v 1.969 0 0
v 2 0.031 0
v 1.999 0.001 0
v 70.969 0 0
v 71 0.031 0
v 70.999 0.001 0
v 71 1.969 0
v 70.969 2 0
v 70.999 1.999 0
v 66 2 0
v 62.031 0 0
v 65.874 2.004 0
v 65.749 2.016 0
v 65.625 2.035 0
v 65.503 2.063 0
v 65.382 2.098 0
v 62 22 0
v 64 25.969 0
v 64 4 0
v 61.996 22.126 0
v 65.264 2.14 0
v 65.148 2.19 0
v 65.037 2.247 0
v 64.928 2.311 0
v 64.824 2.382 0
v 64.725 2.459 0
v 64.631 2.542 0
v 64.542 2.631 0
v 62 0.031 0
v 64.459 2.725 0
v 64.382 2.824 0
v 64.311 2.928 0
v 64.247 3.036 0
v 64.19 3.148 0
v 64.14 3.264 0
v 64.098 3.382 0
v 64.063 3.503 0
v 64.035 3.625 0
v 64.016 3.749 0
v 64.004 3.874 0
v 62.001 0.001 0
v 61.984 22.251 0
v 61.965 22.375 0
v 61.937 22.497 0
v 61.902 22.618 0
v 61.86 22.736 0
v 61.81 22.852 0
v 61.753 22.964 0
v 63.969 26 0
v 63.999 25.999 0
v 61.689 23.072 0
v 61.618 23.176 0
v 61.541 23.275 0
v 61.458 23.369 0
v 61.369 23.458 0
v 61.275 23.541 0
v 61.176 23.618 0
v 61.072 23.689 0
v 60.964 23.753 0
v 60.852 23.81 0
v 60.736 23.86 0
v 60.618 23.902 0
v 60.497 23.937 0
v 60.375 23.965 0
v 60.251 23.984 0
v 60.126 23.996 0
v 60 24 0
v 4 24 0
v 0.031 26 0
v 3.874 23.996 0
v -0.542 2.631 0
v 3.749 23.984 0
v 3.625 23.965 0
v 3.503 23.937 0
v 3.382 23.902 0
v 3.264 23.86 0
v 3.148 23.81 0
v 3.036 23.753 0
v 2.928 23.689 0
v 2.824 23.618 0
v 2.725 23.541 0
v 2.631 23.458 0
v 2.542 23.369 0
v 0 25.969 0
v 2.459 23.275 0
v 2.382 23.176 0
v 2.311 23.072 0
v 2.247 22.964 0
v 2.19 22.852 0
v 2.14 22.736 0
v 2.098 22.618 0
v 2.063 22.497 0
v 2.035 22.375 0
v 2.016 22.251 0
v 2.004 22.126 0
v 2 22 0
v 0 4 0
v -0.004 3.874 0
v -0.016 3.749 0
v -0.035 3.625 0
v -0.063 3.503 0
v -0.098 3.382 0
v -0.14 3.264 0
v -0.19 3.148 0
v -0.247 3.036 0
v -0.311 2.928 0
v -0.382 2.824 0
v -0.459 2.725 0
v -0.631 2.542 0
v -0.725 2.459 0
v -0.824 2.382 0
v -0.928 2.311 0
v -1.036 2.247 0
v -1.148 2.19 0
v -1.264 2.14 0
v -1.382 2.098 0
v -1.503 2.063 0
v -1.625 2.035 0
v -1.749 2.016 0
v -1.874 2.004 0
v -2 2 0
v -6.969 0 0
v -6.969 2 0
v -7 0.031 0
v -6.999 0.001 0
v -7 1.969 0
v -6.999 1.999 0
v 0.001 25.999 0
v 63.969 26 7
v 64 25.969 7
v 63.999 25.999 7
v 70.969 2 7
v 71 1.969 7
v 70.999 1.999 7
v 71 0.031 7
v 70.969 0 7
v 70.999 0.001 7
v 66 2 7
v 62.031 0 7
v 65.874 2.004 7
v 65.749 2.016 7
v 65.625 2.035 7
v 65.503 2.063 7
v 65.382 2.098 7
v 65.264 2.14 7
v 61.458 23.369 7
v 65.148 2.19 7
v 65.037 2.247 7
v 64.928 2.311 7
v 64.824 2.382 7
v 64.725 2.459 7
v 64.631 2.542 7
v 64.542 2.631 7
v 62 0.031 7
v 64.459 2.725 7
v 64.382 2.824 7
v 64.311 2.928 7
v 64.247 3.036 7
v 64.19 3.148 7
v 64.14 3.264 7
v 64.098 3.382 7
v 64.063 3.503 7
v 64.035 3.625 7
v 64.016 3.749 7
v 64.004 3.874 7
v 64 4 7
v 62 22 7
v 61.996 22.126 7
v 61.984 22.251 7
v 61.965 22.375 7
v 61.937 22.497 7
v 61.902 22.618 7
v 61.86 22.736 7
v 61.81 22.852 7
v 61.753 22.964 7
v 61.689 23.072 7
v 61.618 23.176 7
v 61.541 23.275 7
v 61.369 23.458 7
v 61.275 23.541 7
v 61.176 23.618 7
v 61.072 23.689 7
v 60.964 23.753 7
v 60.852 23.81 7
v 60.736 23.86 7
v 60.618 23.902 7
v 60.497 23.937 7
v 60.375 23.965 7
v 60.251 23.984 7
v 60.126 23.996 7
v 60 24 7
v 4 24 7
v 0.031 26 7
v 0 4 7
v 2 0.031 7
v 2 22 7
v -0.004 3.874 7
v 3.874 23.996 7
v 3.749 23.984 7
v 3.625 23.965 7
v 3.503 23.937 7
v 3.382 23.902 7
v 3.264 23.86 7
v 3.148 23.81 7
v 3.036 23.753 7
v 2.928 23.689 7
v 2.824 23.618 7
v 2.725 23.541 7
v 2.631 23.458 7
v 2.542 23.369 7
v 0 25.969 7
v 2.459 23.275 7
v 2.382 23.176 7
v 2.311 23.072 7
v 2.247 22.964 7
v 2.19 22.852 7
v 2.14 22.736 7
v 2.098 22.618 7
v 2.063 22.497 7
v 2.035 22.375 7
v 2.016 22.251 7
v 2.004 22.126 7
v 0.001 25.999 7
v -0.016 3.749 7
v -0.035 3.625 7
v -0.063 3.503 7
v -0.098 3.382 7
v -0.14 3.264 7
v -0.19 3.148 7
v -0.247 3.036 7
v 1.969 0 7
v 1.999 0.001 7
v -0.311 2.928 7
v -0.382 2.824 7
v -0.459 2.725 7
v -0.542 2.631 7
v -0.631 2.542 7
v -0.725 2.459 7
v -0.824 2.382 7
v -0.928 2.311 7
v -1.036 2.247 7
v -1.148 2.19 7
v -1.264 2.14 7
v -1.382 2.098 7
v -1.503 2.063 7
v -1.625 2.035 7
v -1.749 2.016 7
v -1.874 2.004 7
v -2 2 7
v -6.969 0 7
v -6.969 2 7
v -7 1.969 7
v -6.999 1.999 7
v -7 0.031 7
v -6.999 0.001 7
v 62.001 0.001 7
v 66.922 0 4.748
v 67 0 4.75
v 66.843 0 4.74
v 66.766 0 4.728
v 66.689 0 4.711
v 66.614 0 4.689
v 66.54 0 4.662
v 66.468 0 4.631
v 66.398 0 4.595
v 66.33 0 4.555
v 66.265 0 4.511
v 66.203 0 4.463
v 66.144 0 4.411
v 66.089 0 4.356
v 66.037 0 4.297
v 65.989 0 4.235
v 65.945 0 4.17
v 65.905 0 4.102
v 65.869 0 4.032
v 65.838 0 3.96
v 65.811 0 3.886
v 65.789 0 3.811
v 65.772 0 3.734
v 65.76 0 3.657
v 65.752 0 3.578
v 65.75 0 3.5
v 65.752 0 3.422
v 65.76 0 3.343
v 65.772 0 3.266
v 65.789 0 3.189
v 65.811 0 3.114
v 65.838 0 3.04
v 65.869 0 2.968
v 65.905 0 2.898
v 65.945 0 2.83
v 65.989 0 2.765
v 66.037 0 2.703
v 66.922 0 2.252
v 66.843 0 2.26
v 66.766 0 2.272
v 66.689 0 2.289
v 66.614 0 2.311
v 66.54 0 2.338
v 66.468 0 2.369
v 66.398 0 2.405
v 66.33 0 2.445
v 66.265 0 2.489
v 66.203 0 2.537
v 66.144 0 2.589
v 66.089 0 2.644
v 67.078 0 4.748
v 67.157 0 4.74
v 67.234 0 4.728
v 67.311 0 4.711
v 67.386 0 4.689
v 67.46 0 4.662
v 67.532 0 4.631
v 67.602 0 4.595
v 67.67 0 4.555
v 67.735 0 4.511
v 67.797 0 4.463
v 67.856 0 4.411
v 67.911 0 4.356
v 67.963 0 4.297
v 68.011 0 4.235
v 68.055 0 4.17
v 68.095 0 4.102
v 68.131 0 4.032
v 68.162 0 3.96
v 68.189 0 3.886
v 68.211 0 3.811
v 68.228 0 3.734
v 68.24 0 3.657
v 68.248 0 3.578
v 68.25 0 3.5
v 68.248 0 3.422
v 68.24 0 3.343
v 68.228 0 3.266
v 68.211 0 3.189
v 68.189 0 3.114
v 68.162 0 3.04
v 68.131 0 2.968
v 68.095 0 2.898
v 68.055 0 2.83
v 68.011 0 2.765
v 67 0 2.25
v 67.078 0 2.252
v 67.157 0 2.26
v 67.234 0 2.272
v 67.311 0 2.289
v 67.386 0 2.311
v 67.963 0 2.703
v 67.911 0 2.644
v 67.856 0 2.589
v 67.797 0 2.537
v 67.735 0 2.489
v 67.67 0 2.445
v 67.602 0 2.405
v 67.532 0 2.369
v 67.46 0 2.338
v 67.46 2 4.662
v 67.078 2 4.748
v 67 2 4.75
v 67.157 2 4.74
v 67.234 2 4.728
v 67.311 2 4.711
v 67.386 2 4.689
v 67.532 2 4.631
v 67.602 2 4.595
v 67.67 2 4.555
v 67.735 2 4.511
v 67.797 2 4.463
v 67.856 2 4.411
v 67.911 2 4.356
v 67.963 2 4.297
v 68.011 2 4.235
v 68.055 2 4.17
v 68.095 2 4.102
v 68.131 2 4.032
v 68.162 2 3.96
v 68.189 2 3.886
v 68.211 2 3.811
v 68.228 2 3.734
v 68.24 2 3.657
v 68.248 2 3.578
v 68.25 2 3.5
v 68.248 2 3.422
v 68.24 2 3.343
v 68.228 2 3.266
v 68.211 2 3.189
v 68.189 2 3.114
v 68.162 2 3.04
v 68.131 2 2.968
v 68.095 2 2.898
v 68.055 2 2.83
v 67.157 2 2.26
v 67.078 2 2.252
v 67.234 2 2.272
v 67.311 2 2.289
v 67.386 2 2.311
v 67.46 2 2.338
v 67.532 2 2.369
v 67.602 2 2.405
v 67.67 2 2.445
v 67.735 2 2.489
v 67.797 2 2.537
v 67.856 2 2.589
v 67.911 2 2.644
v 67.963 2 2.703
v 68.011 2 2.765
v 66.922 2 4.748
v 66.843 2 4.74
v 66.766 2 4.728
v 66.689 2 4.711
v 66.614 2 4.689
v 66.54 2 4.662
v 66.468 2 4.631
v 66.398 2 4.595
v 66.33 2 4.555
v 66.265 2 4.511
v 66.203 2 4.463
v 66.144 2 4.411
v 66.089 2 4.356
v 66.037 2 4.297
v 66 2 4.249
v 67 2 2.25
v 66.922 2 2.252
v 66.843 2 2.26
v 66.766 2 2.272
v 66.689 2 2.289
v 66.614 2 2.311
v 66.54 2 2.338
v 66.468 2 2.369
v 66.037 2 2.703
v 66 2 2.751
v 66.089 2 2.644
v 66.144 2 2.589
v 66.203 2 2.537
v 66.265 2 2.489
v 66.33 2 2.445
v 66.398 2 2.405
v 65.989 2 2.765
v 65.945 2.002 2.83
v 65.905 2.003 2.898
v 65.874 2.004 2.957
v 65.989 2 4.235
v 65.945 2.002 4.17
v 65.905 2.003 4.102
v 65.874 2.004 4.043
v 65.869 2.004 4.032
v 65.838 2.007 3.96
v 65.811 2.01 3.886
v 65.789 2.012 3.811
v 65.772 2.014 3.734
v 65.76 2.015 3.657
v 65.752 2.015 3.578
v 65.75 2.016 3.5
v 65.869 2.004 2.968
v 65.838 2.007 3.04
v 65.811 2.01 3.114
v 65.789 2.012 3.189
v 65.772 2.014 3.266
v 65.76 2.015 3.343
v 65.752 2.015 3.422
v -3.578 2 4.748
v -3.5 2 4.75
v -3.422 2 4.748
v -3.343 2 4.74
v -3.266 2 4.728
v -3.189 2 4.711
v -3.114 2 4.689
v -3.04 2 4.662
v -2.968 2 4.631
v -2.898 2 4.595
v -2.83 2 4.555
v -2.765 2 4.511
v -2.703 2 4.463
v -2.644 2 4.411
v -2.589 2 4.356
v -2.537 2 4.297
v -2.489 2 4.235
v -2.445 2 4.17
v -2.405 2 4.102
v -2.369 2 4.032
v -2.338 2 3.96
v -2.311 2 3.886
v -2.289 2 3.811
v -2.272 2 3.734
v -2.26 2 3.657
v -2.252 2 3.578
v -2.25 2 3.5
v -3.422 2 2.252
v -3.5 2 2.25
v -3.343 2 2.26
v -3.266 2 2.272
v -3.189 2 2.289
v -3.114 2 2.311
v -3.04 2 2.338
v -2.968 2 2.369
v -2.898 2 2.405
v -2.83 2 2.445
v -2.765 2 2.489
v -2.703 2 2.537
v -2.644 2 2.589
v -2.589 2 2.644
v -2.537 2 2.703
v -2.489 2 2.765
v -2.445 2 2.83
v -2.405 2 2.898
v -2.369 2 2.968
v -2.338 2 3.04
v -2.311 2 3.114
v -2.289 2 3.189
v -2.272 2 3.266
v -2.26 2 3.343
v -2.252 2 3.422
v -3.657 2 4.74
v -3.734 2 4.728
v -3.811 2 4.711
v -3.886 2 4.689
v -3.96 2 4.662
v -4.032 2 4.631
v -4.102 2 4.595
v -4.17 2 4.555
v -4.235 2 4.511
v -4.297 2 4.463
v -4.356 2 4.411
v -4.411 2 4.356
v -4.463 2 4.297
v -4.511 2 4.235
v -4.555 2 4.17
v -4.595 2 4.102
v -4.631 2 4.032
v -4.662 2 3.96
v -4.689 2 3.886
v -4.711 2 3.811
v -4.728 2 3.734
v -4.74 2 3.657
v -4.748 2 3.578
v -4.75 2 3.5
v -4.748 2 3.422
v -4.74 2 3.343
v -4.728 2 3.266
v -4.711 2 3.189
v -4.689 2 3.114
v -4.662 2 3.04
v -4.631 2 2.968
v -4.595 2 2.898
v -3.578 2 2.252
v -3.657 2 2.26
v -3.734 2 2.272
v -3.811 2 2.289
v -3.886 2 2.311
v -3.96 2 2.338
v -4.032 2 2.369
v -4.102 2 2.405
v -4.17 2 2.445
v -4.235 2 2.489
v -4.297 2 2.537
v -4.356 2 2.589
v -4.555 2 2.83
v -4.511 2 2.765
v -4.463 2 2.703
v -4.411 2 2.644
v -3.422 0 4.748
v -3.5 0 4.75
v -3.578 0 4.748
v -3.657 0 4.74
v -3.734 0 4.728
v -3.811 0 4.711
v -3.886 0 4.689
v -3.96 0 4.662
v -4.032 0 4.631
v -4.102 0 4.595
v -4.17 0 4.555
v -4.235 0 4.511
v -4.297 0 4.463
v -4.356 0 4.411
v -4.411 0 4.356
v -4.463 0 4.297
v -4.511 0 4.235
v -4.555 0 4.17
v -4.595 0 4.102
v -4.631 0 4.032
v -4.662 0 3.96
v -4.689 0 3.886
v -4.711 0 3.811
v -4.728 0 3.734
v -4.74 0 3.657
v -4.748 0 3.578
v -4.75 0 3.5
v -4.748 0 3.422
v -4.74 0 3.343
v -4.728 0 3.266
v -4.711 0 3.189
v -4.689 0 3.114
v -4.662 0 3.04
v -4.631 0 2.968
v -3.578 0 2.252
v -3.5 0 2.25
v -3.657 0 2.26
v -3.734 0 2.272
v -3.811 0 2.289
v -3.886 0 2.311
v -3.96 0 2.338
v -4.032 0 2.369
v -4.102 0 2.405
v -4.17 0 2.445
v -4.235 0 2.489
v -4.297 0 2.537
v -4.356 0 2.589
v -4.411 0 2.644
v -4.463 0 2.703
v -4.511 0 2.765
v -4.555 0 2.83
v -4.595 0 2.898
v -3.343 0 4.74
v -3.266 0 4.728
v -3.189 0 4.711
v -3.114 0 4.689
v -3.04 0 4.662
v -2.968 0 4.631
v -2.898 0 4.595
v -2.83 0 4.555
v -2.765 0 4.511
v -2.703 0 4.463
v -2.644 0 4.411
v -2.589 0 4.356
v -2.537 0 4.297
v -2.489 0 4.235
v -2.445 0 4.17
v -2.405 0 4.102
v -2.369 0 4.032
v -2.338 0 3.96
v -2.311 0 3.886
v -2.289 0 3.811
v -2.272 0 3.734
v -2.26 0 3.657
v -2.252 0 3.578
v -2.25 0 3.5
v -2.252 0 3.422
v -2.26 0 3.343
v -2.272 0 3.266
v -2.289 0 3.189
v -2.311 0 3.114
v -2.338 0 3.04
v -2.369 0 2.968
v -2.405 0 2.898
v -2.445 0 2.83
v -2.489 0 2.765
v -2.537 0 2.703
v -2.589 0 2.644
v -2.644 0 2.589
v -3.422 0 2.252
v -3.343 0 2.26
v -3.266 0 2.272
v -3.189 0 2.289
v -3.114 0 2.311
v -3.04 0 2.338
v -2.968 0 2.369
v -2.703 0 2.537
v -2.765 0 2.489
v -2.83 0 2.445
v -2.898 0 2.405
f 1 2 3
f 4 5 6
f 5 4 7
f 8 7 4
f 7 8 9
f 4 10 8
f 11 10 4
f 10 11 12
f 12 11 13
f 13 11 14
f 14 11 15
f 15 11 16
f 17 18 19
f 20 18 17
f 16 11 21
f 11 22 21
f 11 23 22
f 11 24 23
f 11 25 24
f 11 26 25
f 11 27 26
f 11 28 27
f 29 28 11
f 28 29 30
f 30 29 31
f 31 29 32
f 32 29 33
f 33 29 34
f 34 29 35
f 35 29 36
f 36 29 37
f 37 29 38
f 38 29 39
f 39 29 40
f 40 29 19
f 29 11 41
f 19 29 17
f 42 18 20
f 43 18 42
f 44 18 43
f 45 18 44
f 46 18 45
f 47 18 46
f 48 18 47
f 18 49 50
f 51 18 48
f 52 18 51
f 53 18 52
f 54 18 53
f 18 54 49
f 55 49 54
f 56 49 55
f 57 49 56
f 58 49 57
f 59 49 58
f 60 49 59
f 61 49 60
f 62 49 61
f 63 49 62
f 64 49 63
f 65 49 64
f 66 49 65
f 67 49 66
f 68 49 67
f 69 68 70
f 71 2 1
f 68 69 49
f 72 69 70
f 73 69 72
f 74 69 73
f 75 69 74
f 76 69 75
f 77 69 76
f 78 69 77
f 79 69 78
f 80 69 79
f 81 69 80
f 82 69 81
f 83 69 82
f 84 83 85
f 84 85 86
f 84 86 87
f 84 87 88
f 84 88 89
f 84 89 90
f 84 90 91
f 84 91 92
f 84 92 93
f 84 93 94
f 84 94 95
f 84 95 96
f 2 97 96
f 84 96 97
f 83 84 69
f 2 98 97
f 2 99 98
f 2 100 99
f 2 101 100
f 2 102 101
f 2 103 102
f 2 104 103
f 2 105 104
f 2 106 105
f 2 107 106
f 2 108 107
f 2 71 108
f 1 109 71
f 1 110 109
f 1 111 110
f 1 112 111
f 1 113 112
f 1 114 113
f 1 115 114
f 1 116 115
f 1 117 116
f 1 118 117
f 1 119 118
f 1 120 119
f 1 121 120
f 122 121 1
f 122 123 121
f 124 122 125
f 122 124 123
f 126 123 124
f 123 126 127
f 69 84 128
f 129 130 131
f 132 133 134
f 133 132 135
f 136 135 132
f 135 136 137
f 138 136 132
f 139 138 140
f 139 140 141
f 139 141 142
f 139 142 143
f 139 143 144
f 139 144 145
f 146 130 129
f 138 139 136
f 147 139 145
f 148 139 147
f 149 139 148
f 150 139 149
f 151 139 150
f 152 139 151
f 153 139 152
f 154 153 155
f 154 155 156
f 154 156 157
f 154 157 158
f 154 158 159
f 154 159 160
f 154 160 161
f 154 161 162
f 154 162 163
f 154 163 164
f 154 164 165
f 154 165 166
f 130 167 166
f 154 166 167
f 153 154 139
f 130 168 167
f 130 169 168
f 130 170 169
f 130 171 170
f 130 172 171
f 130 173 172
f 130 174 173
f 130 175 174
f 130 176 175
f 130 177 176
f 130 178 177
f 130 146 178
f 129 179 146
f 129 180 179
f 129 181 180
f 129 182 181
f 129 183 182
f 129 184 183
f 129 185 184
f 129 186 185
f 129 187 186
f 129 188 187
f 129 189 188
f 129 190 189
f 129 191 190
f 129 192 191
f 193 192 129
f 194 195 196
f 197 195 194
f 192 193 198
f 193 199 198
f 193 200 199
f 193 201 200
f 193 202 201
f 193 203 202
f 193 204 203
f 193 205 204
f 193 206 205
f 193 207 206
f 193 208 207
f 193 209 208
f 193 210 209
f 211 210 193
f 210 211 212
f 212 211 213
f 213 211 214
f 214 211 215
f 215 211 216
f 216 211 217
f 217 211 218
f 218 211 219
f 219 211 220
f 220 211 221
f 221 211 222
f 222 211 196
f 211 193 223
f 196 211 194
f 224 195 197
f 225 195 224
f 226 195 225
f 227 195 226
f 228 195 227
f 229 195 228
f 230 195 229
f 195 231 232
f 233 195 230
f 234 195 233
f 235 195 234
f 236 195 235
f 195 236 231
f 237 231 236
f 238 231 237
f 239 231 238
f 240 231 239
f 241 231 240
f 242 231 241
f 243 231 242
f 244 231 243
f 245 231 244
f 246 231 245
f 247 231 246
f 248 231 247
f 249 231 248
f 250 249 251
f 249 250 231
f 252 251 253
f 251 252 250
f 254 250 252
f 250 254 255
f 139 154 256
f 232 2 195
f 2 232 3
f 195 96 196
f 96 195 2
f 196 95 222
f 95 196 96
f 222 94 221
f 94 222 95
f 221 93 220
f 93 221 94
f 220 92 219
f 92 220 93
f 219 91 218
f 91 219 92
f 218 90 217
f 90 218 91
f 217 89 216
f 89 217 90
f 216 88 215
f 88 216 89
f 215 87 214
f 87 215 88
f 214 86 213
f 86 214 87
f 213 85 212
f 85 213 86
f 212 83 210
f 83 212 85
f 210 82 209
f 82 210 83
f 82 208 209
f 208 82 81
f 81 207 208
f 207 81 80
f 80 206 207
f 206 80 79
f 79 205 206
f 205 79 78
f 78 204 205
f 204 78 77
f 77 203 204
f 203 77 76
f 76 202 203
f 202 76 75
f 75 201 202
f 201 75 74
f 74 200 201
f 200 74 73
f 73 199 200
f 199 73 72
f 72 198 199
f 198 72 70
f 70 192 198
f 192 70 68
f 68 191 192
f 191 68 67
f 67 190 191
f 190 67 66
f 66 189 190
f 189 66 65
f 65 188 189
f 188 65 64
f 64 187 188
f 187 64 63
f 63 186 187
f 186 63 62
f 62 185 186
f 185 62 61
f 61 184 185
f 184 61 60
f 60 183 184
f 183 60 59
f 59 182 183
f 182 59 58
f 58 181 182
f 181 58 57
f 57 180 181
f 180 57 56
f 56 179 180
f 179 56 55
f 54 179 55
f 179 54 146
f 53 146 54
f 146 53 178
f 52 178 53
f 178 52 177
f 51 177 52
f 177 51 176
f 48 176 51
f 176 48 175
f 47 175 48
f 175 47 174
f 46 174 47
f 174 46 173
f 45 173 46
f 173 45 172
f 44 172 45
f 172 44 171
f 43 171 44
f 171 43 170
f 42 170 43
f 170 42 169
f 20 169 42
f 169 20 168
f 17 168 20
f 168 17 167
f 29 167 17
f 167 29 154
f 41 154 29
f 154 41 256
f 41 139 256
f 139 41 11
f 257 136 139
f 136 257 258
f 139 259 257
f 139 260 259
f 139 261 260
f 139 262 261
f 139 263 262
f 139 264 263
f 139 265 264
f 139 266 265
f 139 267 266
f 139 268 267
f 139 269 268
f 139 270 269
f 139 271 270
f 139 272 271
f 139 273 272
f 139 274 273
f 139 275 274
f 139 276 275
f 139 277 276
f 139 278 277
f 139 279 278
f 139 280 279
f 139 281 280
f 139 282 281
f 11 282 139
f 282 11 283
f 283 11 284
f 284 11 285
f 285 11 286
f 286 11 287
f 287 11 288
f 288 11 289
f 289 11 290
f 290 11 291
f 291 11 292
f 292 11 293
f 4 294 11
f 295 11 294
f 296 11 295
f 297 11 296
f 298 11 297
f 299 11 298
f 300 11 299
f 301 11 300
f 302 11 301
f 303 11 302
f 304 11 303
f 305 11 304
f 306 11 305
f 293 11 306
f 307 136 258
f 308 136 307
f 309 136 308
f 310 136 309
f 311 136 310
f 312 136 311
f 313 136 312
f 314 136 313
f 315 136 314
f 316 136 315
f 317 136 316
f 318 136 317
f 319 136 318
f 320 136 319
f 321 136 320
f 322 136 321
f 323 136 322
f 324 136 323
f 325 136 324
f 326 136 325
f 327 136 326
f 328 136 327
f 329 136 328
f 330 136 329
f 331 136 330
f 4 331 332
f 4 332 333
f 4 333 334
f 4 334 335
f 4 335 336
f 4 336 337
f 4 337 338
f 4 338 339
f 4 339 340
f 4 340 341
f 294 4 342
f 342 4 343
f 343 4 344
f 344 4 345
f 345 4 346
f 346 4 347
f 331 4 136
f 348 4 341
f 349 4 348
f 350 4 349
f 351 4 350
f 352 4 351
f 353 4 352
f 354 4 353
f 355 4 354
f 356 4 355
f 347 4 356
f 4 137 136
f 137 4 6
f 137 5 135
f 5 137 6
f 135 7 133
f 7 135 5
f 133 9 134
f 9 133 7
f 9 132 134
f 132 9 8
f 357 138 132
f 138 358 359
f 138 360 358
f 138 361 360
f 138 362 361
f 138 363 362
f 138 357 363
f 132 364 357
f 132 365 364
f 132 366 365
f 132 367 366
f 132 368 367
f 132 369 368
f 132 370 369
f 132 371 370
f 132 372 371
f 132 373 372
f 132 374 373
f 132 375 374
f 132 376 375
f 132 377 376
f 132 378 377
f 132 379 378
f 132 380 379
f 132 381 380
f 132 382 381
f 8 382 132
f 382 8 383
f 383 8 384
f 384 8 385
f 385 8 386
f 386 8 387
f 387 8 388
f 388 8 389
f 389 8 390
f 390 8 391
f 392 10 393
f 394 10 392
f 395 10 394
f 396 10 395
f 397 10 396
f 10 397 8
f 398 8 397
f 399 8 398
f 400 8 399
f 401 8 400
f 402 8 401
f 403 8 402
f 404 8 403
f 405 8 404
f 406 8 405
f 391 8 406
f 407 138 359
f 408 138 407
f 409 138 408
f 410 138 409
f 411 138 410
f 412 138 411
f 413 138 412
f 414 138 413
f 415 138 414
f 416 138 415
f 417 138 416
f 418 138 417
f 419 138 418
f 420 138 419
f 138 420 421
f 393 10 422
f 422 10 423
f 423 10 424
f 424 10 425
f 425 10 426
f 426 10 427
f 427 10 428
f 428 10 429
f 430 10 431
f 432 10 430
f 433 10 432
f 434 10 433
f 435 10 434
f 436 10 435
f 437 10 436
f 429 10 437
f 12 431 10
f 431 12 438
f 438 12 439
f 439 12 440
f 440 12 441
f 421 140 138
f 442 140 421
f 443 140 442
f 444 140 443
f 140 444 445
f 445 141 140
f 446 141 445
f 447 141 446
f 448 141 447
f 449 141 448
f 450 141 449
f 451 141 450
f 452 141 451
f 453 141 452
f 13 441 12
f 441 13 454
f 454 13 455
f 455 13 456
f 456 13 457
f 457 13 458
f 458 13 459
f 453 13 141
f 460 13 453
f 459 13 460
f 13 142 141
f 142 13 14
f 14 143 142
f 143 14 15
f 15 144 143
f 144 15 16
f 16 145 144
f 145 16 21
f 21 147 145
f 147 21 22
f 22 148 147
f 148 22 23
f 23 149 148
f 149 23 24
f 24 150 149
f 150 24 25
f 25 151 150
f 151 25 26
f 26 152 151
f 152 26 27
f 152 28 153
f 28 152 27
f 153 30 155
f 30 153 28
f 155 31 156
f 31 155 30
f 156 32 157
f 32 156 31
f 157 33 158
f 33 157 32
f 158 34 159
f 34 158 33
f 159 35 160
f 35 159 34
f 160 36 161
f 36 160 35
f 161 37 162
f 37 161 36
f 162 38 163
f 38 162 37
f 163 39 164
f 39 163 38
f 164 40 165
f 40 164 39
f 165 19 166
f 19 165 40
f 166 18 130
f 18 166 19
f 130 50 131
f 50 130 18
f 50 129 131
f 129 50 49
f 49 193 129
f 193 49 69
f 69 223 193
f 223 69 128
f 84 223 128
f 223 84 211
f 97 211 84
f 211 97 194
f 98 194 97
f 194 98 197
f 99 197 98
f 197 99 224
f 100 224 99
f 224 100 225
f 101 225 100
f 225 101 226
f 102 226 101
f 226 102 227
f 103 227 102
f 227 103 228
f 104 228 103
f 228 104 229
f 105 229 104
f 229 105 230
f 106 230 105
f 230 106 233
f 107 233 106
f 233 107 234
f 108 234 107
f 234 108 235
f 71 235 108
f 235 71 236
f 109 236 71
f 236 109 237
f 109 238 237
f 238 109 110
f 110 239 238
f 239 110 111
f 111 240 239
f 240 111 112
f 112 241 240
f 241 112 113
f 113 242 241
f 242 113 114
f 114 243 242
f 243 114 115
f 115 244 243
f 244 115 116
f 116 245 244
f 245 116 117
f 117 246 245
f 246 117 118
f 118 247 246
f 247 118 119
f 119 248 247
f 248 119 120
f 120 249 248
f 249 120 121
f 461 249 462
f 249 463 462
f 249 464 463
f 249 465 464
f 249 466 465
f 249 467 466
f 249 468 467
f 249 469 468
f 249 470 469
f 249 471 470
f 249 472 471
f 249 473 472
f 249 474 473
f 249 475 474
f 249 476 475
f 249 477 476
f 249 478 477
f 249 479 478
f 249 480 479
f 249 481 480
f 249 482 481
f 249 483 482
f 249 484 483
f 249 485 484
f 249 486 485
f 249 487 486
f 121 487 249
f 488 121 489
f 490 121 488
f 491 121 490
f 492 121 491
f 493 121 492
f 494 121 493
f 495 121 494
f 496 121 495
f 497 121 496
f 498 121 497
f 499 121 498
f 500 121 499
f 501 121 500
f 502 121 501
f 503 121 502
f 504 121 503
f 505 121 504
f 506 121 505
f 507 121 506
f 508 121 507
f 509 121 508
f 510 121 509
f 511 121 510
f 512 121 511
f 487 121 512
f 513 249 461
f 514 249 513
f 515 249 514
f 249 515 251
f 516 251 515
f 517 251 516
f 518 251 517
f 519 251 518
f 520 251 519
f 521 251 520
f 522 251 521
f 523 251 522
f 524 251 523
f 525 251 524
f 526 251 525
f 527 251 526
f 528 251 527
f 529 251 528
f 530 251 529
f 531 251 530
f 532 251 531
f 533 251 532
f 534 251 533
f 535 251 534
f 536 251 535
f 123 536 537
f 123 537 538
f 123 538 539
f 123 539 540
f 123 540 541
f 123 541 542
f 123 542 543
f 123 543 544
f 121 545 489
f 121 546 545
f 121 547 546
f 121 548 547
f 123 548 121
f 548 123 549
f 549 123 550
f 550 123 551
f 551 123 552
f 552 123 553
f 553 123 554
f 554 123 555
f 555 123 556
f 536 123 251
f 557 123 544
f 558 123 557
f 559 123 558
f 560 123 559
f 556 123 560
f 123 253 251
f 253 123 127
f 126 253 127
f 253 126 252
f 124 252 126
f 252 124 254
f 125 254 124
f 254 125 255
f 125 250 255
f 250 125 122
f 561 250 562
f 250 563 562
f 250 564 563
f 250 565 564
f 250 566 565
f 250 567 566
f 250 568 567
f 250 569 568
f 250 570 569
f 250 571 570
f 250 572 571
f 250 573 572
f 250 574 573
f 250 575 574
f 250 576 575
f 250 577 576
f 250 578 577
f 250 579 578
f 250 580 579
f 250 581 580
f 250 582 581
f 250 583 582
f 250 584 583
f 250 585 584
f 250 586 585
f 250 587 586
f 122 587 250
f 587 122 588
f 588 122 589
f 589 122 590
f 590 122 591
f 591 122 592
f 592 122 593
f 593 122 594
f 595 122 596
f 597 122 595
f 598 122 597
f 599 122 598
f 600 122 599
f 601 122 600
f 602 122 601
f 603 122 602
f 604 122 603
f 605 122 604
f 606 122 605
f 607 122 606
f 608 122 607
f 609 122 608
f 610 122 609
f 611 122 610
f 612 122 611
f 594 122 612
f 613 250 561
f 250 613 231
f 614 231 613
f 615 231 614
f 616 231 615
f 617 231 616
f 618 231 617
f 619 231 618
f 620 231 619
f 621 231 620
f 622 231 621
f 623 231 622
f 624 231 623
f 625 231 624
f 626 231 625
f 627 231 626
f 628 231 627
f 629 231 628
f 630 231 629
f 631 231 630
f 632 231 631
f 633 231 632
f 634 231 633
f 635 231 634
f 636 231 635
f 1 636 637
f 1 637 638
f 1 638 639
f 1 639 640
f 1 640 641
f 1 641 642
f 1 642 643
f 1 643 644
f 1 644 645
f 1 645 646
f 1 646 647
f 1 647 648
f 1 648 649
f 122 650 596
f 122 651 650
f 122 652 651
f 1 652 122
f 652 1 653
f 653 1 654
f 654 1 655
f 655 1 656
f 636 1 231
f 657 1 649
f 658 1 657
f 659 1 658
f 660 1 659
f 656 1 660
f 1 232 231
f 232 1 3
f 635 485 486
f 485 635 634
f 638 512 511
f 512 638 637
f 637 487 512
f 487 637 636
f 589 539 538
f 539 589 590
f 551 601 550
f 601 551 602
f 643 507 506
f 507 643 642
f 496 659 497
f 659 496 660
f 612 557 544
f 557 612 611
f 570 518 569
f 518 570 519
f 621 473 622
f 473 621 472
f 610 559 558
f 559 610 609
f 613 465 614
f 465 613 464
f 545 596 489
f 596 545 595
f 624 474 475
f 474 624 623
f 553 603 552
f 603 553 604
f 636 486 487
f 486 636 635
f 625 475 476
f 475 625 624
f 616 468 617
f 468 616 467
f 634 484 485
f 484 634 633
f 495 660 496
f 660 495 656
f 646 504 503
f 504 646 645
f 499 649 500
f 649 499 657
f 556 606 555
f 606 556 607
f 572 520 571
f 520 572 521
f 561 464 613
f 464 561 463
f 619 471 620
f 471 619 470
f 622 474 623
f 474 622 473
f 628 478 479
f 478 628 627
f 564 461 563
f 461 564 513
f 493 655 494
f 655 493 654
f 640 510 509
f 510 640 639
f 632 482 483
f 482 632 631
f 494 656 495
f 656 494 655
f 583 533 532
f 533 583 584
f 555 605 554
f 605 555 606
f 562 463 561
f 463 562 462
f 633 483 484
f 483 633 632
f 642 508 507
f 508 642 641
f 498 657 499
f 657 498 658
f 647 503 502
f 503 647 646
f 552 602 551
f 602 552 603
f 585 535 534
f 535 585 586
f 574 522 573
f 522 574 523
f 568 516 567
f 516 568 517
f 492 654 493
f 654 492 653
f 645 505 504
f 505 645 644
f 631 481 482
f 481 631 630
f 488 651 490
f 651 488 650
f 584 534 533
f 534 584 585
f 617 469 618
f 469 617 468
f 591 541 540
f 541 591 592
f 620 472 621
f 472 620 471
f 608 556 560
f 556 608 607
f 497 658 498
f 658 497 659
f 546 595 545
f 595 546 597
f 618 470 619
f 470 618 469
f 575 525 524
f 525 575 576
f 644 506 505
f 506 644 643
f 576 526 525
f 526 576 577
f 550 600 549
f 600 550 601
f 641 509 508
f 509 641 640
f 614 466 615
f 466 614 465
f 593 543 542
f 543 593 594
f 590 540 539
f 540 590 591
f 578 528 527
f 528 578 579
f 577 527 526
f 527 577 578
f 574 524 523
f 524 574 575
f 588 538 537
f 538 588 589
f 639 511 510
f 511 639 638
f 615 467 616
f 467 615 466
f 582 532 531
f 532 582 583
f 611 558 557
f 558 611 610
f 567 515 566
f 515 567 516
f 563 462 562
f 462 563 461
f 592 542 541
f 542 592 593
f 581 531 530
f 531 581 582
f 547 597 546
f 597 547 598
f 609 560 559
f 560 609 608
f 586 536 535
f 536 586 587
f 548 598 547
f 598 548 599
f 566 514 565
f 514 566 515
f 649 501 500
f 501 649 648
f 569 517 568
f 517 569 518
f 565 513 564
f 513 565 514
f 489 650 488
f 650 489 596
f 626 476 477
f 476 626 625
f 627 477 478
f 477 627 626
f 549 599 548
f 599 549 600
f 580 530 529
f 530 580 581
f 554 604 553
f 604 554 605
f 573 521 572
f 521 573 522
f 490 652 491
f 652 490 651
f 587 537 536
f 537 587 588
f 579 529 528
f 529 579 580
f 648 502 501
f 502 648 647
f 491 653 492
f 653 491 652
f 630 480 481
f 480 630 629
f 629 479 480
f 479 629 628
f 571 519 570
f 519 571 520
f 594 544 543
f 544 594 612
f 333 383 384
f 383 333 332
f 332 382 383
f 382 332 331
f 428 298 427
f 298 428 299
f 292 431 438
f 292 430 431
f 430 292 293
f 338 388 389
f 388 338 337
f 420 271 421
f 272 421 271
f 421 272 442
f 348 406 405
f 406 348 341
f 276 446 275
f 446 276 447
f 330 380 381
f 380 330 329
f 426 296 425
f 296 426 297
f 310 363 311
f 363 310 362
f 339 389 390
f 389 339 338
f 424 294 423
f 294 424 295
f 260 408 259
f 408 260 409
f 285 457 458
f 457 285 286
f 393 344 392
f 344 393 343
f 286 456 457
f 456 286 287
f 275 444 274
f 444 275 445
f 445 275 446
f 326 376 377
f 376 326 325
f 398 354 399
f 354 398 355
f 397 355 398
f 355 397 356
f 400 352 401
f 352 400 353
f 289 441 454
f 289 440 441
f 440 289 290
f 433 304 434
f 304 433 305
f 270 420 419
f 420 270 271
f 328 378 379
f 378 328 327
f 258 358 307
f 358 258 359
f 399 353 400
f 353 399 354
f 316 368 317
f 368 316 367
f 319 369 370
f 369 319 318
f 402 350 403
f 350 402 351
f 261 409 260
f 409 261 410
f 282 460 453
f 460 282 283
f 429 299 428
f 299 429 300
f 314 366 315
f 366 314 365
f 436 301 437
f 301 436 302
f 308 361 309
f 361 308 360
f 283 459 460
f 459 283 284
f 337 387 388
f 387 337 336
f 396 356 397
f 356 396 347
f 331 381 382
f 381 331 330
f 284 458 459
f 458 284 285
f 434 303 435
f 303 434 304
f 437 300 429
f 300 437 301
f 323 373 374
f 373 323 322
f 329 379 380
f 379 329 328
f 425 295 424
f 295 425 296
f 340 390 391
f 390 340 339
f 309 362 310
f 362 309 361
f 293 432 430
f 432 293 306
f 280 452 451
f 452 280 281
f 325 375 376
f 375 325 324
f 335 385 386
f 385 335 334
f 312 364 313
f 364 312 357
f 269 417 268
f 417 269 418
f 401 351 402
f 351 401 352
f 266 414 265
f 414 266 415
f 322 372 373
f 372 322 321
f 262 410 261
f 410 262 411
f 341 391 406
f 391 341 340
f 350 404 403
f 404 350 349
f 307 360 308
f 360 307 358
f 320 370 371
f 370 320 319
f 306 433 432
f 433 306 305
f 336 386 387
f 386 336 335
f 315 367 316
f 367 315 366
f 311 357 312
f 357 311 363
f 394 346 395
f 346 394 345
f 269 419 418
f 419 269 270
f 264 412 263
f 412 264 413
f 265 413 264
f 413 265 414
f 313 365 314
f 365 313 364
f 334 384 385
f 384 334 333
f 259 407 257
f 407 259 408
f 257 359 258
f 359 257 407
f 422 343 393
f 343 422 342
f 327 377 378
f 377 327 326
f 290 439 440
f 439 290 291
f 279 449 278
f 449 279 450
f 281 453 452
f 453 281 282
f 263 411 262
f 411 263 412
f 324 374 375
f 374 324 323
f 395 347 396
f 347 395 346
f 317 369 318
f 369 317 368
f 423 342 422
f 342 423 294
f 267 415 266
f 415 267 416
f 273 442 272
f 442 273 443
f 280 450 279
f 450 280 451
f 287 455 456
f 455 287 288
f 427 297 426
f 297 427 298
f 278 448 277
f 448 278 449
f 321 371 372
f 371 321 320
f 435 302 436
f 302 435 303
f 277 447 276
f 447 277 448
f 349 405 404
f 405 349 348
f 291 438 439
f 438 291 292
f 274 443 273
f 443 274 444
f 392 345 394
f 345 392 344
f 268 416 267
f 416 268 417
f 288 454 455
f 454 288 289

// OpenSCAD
box = [60, 24];
roundness = 2;
thickness = 2;
feet = 7;
screw_d = 2.5;

/*
difference(){
	offset(r=roundness, $fn = 100) {
		square(box+[(thickness-roundness)*2, thickness-roundness]);
	}
	translate([thickness,0])
		offset(r=roundness, $fn = 100)
		{
			square(box-[roundness*2,roundness]);
		}
	translate([-box.x/2, -10])
		square([box.x*2, 10]);
}
*/
difference(){
	linear_extrude(feet){
		offset(r=-roundness, $fn = 100) offset(r=roundness, $fn = 100)
			difference(){
				union(){
					square(box+[thickness*2, thickness]);
					translate([-feet, 0])
						square([box.x + thickness*2 + feet*2, thickness]);
				}
				translate([thickness,0])
					square(box);
			}
	}
	#translate([-feet/2, -1, feet/2]) rotate([-90,0,0])
		cylinder(d=screw_d, h = feet,$fn = 100);
	#translate([box.x+feet, -1, feet/2]) rotate([-90,0,0])
		cylinder(d=screw_d, h = feet,$fn = 100);
}
